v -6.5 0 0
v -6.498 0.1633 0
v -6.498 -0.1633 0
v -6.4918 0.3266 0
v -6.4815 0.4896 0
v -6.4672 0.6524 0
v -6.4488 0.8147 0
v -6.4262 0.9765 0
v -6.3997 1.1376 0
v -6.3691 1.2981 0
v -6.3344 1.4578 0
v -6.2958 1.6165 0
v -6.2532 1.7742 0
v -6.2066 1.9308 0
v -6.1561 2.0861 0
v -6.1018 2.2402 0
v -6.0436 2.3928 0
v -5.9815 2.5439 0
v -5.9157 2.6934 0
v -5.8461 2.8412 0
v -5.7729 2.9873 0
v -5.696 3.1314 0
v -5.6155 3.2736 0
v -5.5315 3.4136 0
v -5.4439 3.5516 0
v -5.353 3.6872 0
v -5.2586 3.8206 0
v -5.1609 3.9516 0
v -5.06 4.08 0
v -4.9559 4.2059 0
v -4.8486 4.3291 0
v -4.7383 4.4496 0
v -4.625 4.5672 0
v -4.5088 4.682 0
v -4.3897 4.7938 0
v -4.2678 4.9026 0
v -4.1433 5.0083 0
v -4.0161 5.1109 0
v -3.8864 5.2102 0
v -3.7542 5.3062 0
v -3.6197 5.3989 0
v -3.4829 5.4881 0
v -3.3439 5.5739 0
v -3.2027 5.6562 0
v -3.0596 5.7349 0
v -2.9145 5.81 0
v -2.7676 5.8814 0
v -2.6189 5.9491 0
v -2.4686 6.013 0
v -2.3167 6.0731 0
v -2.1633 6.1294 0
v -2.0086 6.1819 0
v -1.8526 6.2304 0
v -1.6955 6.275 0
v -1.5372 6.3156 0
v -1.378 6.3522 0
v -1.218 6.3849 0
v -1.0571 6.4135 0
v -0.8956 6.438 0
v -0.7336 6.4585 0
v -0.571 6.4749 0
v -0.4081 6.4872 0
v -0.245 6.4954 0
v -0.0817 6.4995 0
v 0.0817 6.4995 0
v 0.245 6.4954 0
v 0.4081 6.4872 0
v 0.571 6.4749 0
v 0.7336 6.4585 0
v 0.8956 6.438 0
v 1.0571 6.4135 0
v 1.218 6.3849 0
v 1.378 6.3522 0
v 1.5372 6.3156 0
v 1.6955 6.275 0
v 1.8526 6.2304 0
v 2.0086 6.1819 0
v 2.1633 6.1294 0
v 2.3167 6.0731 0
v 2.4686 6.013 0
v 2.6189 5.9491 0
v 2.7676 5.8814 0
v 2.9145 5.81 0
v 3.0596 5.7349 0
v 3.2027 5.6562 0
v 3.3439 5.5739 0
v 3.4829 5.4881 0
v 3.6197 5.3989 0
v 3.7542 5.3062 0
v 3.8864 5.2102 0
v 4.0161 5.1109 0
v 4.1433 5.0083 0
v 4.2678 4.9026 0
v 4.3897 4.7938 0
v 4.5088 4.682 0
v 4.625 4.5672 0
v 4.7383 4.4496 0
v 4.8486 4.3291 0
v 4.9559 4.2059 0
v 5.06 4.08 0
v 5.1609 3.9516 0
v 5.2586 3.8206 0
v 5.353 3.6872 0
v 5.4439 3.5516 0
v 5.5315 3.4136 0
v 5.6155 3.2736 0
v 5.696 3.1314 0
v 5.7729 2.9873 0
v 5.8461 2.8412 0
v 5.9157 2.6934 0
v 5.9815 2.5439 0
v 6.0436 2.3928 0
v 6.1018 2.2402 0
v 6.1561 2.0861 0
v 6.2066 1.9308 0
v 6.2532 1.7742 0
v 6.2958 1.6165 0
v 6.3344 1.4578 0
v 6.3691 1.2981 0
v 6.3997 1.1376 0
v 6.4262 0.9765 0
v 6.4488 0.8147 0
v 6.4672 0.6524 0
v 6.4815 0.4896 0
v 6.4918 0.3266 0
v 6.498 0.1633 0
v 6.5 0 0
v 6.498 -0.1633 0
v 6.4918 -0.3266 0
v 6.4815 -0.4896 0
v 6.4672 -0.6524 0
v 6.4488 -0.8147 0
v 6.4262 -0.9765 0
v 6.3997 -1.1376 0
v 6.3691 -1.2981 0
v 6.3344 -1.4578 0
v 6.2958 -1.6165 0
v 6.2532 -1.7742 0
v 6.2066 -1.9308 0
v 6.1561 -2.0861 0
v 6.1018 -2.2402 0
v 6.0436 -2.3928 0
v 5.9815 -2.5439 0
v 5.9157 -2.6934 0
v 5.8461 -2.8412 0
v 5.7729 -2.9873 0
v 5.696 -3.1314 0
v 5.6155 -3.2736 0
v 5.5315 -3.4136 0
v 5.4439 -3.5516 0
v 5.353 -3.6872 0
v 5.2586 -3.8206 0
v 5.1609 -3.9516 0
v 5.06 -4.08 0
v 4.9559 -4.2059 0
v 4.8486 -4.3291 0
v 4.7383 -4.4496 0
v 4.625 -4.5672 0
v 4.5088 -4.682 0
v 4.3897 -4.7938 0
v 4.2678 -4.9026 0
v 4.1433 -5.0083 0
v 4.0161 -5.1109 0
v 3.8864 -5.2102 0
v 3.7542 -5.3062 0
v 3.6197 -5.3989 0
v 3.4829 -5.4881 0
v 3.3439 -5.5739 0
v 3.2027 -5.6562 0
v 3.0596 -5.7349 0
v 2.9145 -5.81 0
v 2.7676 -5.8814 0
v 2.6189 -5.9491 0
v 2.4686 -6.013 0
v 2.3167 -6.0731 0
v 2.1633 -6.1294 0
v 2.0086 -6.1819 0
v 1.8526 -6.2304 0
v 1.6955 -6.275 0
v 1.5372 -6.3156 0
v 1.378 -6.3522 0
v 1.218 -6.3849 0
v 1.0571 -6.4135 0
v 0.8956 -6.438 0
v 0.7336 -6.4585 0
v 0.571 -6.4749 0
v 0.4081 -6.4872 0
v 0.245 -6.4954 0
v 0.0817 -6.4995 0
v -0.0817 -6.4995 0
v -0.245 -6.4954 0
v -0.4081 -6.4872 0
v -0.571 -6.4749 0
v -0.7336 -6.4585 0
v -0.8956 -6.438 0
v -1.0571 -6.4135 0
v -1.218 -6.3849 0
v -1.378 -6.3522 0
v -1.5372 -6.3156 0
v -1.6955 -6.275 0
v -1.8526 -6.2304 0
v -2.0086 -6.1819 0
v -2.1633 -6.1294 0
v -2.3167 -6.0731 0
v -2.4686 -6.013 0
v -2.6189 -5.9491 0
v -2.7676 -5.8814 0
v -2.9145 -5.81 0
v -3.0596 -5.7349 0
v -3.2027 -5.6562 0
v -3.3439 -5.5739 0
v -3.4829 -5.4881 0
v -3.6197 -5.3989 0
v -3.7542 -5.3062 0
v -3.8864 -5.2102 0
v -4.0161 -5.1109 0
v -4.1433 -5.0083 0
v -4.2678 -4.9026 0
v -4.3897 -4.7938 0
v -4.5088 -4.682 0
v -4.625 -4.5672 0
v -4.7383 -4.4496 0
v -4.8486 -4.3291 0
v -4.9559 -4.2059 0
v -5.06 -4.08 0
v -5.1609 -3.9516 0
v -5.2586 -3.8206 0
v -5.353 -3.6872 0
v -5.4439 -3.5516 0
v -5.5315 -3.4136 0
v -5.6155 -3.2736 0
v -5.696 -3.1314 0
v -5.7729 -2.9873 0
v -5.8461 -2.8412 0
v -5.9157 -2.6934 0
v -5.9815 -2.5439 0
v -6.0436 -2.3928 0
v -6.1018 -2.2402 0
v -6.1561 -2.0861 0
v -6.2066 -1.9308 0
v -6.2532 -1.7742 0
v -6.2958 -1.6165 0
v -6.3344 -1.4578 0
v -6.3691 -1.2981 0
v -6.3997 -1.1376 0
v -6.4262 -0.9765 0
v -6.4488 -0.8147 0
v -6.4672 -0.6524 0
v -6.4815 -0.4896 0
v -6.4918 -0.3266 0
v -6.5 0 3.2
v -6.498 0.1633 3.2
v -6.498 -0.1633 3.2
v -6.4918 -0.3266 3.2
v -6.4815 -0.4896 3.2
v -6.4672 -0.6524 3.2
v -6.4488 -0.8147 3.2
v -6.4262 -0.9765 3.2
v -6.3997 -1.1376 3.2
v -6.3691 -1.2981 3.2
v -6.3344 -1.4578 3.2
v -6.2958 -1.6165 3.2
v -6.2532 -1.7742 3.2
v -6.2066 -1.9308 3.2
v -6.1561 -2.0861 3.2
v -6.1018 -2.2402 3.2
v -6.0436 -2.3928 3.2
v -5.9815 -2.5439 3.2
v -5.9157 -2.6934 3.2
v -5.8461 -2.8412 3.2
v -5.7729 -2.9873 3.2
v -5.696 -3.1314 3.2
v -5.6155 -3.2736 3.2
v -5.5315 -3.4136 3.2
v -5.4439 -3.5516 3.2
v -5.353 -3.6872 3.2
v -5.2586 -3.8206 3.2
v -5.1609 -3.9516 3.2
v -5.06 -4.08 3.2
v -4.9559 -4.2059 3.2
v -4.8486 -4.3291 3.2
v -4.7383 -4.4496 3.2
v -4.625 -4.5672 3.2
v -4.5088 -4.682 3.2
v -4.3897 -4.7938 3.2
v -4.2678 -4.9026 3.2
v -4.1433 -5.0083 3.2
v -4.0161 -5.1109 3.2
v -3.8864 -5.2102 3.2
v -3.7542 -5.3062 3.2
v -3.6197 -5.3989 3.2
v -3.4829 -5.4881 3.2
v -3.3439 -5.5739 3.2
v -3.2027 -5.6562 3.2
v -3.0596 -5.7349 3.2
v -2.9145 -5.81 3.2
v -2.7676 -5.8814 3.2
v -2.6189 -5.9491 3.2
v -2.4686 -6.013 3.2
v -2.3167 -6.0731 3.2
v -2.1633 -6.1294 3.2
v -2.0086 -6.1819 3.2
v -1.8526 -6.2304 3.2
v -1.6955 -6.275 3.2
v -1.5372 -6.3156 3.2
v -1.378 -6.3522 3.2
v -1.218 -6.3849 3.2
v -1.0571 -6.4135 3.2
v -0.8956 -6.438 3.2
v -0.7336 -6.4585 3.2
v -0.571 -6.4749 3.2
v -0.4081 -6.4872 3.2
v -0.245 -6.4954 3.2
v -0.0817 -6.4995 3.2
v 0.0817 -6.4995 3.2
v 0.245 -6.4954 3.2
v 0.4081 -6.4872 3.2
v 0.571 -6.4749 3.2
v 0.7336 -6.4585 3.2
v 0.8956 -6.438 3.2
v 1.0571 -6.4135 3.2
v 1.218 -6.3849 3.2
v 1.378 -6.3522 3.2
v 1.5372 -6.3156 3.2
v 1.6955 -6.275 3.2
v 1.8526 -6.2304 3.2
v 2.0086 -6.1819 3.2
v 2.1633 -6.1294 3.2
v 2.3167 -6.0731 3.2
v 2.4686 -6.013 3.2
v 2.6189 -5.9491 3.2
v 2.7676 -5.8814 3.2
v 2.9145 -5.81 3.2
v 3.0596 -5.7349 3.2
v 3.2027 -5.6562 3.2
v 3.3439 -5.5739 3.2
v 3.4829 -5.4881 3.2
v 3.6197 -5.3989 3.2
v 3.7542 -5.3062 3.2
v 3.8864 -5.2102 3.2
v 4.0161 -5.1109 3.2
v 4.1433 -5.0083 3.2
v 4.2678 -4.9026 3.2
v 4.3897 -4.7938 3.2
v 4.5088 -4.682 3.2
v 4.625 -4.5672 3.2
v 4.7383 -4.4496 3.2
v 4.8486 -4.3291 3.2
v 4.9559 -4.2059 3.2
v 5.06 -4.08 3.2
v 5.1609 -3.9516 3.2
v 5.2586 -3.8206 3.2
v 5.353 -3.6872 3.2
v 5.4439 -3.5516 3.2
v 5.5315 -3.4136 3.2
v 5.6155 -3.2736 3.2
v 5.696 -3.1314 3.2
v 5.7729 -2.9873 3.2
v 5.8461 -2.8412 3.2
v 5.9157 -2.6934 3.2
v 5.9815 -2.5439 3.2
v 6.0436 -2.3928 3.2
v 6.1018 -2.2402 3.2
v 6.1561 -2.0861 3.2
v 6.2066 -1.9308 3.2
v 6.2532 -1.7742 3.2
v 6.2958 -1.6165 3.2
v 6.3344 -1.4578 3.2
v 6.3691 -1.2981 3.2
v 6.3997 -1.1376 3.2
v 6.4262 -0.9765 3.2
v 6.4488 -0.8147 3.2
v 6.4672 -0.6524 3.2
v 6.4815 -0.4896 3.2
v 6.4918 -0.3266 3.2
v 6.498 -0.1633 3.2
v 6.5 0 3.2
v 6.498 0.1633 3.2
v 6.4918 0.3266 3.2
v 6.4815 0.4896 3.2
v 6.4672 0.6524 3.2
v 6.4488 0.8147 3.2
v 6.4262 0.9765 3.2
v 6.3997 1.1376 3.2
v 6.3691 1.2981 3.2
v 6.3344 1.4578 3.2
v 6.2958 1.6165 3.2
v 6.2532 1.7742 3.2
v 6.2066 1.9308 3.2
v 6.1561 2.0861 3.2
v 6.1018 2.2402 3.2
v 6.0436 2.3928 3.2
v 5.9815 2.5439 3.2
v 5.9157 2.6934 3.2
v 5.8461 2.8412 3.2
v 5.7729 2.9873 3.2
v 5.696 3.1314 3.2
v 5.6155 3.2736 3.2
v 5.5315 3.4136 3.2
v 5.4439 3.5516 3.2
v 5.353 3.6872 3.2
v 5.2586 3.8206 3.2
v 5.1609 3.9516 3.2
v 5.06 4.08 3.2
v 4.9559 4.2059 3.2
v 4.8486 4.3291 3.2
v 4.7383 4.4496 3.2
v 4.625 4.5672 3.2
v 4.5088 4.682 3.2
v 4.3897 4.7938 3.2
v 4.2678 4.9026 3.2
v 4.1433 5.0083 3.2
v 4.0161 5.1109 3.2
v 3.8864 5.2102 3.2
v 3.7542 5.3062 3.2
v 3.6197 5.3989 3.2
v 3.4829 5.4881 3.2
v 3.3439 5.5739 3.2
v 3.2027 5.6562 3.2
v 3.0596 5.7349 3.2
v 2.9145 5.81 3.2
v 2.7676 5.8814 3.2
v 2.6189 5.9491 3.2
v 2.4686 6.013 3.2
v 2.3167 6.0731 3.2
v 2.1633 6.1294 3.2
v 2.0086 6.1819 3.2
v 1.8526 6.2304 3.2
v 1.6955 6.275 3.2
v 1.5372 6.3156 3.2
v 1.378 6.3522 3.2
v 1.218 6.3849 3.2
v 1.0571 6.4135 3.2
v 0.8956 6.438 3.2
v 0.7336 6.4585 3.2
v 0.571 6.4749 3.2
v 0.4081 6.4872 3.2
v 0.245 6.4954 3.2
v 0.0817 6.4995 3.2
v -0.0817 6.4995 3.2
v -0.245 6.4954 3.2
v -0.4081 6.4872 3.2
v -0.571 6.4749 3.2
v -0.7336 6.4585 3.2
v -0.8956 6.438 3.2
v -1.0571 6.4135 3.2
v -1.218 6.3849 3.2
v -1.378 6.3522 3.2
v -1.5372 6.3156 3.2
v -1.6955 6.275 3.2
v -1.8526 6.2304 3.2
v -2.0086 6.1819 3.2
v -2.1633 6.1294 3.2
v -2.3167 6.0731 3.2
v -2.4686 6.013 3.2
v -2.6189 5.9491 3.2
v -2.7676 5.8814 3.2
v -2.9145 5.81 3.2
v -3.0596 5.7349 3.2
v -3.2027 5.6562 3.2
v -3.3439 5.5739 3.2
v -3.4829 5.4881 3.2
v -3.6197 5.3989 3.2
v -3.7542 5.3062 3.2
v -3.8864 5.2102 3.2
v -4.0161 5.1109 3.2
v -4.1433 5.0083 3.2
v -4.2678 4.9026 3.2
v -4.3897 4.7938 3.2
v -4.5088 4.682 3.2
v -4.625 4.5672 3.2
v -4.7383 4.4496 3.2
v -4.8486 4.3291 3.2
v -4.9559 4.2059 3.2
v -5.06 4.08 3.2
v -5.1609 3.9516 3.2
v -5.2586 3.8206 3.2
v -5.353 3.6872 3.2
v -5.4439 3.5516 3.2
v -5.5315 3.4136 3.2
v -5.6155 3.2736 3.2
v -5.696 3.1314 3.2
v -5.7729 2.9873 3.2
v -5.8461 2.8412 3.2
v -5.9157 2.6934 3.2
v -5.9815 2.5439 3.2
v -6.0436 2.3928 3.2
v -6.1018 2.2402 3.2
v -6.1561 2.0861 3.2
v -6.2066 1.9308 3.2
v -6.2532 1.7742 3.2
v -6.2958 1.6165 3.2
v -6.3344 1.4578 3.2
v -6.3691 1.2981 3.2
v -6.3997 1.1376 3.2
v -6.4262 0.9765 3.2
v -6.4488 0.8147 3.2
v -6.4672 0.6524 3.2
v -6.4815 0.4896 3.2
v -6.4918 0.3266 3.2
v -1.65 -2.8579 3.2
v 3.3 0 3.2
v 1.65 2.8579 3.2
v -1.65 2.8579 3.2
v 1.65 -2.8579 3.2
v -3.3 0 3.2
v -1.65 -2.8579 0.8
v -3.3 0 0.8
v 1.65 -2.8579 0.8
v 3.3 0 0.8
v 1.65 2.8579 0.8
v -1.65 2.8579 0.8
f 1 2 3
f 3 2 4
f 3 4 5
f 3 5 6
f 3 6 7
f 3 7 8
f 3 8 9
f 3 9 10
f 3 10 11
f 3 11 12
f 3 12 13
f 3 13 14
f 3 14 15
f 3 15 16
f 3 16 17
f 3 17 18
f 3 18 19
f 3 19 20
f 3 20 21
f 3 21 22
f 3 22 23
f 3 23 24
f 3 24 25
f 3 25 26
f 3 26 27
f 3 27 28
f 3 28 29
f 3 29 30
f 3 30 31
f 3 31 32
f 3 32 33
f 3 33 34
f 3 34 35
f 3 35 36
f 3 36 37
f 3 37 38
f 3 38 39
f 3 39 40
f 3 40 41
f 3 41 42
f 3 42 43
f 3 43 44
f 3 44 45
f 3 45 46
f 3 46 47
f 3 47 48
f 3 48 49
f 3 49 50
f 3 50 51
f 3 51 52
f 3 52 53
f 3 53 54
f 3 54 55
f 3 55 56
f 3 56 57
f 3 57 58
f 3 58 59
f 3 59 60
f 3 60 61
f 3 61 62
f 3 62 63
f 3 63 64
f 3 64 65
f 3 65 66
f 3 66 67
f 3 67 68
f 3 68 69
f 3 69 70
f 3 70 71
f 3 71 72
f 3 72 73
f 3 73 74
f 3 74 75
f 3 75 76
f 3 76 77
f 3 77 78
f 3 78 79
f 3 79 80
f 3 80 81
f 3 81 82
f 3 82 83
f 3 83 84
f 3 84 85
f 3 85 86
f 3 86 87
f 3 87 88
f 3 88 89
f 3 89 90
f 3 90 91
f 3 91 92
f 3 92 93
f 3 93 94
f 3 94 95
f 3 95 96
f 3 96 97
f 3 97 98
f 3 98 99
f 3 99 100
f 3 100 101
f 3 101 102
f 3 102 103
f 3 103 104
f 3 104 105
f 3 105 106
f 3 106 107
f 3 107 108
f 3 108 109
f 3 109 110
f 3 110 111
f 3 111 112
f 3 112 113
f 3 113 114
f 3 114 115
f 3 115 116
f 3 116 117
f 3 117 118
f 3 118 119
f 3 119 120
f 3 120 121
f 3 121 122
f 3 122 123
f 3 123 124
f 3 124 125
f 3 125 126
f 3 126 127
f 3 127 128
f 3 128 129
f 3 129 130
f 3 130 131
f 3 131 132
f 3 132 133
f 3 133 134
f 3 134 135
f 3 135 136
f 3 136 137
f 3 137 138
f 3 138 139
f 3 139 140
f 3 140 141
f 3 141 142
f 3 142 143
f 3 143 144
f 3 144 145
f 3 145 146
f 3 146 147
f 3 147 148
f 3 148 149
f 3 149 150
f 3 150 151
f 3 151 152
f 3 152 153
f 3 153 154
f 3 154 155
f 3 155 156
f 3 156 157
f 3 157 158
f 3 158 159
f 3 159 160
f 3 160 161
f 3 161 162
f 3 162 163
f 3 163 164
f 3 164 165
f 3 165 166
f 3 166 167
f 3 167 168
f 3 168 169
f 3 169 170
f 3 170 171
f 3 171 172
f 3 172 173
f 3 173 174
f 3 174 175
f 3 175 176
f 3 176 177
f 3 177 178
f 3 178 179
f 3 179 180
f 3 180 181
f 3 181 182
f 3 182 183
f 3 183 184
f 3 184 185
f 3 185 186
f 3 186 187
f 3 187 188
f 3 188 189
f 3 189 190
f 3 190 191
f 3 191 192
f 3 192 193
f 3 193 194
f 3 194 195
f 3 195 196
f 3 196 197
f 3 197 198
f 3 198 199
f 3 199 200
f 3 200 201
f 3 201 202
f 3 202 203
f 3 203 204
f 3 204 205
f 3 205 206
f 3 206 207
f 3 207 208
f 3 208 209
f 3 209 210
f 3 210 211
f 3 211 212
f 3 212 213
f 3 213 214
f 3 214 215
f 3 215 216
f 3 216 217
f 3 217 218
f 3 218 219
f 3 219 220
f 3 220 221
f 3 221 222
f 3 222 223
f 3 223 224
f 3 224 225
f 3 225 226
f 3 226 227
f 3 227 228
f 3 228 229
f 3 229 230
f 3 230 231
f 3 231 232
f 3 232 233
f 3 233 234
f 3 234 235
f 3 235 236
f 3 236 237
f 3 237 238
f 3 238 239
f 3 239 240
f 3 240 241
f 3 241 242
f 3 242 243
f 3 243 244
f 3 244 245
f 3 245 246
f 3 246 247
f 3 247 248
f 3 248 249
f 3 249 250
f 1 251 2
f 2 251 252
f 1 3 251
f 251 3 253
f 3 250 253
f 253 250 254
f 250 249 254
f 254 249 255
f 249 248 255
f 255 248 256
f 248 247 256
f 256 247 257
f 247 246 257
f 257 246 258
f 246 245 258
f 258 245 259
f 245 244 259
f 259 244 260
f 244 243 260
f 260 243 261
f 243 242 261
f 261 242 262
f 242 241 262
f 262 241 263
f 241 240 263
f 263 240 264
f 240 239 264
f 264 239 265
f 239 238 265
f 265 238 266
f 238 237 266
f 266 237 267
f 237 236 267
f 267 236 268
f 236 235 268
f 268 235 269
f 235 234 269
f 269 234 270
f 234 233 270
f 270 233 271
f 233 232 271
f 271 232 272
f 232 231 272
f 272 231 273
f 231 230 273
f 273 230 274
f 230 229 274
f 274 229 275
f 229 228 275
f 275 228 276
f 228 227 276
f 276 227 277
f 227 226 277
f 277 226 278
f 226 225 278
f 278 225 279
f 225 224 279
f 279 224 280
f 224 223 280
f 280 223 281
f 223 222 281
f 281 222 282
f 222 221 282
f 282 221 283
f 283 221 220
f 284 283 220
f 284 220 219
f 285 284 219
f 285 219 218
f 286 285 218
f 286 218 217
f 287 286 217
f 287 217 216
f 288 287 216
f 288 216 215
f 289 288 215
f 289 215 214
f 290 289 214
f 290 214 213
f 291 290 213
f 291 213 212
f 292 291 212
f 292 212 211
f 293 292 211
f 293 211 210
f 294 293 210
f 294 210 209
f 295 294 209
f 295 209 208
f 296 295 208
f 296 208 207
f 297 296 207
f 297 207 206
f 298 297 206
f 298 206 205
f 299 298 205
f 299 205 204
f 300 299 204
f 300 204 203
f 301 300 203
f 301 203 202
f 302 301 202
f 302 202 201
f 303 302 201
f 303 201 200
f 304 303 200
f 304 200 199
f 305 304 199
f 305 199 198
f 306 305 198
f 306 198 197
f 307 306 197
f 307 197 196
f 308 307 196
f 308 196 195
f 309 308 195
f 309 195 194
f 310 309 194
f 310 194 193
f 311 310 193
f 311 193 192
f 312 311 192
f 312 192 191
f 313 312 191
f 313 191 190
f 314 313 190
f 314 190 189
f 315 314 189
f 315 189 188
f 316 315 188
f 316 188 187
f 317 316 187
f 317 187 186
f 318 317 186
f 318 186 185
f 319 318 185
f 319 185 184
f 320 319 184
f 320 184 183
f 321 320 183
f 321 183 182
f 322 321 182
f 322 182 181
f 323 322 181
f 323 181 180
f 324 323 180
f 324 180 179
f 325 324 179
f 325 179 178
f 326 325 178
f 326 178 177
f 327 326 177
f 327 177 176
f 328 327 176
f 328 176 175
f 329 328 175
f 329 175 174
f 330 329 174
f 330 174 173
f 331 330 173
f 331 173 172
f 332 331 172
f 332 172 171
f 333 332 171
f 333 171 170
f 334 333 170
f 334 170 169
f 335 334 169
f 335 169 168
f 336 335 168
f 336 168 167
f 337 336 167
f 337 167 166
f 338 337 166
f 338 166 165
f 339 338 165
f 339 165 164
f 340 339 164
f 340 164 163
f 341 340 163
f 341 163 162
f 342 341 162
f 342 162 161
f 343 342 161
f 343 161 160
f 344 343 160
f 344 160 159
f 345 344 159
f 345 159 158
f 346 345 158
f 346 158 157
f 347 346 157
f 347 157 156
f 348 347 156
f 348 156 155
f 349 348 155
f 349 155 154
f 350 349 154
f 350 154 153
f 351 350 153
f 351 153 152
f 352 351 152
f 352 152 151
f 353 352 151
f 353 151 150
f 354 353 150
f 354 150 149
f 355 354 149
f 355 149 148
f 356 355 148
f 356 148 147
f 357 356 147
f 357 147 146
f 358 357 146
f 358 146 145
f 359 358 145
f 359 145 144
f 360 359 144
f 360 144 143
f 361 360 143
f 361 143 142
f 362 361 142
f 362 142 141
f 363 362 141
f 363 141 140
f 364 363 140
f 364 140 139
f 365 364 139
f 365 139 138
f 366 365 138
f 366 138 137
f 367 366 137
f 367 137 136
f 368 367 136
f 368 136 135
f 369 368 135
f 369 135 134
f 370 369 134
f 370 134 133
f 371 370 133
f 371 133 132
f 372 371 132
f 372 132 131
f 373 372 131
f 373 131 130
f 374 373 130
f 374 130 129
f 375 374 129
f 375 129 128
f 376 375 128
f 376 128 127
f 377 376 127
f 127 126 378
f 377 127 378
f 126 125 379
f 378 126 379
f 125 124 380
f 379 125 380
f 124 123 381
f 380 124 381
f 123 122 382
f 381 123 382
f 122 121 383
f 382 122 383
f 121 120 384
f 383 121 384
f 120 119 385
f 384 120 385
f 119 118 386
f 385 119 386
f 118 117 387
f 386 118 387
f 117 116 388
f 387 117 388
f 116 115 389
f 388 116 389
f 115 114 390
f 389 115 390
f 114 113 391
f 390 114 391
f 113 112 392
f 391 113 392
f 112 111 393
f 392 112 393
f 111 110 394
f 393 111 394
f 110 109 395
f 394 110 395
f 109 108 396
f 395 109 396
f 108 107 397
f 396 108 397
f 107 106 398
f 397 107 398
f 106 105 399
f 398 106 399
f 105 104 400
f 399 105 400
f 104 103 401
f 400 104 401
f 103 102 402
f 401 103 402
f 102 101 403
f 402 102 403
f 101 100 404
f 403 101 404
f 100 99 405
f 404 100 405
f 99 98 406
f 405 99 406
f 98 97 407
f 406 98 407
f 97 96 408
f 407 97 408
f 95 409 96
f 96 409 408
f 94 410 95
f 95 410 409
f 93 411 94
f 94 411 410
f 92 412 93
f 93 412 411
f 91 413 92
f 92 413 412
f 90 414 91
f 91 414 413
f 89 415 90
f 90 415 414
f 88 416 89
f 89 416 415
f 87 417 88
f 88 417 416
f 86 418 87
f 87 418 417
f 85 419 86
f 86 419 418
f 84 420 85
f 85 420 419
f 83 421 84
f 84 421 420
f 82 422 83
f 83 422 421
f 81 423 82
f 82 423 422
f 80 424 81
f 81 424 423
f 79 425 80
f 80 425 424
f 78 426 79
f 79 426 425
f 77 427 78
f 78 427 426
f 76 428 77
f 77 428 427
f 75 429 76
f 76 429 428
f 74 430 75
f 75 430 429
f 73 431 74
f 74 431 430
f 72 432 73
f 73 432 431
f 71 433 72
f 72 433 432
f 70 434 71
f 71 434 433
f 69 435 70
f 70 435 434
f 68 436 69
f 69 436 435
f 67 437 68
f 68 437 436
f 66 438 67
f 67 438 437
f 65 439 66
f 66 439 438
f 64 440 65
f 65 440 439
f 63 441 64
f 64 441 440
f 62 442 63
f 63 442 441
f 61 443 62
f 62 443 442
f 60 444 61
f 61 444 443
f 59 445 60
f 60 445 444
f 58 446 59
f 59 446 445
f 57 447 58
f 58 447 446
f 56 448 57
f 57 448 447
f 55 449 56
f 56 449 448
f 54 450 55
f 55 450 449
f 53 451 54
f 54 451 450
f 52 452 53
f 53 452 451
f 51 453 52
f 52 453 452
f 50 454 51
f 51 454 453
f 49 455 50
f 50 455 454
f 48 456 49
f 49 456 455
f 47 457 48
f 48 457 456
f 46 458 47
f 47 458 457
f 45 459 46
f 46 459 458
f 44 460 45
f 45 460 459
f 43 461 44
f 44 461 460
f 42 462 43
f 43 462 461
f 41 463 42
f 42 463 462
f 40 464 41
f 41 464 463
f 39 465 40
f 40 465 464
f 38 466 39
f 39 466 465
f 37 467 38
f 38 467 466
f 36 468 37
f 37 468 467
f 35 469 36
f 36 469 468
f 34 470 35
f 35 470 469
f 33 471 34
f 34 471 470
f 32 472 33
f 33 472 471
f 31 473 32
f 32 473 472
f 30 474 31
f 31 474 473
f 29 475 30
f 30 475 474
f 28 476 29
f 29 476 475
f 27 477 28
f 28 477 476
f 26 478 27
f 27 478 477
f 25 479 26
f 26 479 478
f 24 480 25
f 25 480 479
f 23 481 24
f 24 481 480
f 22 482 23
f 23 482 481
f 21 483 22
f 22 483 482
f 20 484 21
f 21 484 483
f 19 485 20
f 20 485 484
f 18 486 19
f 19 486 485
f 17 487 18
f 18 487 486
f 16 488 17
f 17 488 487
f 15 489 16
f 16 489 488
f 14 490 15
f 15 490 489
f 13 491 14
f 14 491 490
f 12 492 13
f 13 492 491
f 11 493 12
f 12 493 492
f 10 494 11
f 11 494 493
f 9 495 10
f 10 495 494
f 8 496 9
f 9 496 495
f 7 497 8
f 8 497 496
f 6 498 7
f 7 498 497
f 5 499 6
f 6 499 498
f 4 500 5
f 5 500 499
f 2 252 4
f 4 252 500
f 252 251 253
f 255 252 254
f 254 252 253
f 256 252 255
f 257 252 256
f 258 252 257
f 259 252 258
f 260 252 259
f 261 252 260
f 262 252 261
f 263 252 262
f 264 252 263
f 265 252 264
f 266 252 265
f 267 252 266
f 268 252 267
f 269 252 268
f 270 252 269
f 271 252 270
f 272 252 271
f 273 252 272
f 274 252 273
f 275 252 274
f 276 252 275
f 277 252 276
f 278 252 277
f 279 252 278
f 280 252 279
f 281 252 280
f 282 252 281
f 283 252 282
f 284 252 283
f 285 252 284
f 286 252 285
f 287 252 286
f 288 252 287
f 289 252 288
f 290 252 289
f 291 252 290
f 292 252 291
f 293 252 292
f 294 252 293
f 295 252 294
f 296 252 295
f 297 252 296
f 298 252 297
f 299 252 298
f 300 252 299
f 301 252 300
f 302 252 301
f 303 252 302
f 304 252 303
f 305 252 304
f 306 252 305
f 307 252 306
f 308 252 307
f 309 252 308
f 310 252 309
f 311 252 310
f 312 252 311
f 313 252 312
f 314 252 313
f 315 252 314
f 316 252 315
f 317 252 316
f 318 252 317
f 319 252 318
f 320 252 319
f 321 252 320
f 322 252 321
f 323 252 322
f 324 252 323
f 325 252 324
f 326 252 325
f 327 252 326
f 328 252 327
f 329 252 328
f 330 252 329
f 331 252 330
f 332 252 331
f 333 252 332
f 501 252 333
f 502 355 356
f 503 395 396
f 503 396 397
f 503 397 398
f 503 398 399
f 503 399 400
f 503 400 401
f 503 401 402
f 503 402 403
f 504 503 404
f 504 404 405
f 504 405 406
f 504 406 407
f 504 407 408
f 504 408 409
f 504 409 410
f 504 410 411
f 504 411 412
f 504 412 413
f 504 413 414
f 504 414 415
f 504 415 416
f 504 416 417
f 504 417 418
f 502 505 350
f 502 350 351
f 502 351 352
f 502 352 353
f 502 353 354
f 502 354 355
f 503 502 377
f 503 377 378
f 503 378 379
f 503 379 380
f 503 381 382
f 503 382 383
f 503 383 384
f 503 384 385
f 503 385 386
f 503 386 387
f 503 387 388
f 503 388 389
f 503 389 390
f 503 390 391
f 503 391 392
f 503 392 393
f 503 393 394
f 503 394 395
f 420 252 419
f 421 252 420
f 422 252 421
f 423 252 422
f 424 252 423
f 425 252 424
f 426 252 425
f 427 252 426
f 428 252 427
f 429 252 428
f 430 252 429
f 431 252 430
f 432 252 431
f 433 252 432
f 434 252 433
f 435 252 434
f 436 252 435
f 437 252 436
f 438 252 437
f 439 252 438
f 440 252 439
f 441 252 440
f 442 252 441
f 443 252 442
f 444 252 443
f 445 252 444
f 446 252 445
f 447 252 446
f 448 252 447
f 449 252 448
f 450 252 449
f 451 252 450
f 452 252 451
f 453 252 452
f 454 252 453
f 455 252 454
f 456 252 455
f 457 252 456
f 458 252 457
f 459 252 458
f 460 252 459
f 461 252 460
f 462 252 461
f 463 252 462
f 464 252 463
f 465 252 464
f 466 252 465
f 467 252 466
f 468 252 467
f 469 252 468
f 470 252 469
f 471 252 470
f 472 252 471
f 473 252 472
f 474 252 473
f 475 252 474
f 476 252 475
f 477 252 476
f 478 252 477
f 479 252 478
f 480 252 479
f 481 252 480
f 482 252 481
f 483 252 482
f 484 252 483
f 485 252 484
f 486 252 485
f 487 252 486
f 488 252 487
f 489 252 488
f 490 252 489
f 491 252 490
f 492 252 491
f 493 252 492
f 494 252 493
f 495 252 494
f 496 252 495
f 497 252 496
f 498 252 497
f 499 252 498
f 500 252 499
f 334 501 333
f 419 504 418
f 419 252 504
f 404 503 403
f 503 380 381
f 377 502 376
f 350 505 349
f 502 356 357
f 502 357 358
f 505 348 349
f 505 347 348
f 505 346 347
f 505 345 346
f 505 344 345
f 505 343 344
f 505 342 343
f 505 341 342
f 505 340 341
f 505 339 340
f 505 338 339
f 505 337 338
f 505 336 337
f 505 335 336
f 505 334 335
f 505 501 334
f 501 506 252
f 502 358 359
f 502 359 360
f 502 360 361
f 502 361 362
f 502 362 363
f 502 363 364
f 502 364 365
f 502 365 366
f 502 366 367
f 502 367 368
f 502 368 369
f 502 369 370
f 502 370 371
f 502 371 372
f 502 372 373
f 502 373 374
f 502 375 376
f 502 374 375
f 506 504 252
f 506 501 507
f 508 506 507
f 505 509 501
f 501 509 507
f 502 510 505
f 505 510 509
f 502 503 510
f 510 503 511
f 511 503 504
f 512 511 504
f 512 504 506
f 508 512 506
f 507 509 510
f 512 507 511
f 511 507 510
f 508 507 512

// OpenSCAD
$fn=250;
difference(){
	cylinder(r= 13/2 , 3.2);
	translate([0,0,0.8])
	cylinder(r= 6.6/2 , 2.5 ,$fn=6);
}
